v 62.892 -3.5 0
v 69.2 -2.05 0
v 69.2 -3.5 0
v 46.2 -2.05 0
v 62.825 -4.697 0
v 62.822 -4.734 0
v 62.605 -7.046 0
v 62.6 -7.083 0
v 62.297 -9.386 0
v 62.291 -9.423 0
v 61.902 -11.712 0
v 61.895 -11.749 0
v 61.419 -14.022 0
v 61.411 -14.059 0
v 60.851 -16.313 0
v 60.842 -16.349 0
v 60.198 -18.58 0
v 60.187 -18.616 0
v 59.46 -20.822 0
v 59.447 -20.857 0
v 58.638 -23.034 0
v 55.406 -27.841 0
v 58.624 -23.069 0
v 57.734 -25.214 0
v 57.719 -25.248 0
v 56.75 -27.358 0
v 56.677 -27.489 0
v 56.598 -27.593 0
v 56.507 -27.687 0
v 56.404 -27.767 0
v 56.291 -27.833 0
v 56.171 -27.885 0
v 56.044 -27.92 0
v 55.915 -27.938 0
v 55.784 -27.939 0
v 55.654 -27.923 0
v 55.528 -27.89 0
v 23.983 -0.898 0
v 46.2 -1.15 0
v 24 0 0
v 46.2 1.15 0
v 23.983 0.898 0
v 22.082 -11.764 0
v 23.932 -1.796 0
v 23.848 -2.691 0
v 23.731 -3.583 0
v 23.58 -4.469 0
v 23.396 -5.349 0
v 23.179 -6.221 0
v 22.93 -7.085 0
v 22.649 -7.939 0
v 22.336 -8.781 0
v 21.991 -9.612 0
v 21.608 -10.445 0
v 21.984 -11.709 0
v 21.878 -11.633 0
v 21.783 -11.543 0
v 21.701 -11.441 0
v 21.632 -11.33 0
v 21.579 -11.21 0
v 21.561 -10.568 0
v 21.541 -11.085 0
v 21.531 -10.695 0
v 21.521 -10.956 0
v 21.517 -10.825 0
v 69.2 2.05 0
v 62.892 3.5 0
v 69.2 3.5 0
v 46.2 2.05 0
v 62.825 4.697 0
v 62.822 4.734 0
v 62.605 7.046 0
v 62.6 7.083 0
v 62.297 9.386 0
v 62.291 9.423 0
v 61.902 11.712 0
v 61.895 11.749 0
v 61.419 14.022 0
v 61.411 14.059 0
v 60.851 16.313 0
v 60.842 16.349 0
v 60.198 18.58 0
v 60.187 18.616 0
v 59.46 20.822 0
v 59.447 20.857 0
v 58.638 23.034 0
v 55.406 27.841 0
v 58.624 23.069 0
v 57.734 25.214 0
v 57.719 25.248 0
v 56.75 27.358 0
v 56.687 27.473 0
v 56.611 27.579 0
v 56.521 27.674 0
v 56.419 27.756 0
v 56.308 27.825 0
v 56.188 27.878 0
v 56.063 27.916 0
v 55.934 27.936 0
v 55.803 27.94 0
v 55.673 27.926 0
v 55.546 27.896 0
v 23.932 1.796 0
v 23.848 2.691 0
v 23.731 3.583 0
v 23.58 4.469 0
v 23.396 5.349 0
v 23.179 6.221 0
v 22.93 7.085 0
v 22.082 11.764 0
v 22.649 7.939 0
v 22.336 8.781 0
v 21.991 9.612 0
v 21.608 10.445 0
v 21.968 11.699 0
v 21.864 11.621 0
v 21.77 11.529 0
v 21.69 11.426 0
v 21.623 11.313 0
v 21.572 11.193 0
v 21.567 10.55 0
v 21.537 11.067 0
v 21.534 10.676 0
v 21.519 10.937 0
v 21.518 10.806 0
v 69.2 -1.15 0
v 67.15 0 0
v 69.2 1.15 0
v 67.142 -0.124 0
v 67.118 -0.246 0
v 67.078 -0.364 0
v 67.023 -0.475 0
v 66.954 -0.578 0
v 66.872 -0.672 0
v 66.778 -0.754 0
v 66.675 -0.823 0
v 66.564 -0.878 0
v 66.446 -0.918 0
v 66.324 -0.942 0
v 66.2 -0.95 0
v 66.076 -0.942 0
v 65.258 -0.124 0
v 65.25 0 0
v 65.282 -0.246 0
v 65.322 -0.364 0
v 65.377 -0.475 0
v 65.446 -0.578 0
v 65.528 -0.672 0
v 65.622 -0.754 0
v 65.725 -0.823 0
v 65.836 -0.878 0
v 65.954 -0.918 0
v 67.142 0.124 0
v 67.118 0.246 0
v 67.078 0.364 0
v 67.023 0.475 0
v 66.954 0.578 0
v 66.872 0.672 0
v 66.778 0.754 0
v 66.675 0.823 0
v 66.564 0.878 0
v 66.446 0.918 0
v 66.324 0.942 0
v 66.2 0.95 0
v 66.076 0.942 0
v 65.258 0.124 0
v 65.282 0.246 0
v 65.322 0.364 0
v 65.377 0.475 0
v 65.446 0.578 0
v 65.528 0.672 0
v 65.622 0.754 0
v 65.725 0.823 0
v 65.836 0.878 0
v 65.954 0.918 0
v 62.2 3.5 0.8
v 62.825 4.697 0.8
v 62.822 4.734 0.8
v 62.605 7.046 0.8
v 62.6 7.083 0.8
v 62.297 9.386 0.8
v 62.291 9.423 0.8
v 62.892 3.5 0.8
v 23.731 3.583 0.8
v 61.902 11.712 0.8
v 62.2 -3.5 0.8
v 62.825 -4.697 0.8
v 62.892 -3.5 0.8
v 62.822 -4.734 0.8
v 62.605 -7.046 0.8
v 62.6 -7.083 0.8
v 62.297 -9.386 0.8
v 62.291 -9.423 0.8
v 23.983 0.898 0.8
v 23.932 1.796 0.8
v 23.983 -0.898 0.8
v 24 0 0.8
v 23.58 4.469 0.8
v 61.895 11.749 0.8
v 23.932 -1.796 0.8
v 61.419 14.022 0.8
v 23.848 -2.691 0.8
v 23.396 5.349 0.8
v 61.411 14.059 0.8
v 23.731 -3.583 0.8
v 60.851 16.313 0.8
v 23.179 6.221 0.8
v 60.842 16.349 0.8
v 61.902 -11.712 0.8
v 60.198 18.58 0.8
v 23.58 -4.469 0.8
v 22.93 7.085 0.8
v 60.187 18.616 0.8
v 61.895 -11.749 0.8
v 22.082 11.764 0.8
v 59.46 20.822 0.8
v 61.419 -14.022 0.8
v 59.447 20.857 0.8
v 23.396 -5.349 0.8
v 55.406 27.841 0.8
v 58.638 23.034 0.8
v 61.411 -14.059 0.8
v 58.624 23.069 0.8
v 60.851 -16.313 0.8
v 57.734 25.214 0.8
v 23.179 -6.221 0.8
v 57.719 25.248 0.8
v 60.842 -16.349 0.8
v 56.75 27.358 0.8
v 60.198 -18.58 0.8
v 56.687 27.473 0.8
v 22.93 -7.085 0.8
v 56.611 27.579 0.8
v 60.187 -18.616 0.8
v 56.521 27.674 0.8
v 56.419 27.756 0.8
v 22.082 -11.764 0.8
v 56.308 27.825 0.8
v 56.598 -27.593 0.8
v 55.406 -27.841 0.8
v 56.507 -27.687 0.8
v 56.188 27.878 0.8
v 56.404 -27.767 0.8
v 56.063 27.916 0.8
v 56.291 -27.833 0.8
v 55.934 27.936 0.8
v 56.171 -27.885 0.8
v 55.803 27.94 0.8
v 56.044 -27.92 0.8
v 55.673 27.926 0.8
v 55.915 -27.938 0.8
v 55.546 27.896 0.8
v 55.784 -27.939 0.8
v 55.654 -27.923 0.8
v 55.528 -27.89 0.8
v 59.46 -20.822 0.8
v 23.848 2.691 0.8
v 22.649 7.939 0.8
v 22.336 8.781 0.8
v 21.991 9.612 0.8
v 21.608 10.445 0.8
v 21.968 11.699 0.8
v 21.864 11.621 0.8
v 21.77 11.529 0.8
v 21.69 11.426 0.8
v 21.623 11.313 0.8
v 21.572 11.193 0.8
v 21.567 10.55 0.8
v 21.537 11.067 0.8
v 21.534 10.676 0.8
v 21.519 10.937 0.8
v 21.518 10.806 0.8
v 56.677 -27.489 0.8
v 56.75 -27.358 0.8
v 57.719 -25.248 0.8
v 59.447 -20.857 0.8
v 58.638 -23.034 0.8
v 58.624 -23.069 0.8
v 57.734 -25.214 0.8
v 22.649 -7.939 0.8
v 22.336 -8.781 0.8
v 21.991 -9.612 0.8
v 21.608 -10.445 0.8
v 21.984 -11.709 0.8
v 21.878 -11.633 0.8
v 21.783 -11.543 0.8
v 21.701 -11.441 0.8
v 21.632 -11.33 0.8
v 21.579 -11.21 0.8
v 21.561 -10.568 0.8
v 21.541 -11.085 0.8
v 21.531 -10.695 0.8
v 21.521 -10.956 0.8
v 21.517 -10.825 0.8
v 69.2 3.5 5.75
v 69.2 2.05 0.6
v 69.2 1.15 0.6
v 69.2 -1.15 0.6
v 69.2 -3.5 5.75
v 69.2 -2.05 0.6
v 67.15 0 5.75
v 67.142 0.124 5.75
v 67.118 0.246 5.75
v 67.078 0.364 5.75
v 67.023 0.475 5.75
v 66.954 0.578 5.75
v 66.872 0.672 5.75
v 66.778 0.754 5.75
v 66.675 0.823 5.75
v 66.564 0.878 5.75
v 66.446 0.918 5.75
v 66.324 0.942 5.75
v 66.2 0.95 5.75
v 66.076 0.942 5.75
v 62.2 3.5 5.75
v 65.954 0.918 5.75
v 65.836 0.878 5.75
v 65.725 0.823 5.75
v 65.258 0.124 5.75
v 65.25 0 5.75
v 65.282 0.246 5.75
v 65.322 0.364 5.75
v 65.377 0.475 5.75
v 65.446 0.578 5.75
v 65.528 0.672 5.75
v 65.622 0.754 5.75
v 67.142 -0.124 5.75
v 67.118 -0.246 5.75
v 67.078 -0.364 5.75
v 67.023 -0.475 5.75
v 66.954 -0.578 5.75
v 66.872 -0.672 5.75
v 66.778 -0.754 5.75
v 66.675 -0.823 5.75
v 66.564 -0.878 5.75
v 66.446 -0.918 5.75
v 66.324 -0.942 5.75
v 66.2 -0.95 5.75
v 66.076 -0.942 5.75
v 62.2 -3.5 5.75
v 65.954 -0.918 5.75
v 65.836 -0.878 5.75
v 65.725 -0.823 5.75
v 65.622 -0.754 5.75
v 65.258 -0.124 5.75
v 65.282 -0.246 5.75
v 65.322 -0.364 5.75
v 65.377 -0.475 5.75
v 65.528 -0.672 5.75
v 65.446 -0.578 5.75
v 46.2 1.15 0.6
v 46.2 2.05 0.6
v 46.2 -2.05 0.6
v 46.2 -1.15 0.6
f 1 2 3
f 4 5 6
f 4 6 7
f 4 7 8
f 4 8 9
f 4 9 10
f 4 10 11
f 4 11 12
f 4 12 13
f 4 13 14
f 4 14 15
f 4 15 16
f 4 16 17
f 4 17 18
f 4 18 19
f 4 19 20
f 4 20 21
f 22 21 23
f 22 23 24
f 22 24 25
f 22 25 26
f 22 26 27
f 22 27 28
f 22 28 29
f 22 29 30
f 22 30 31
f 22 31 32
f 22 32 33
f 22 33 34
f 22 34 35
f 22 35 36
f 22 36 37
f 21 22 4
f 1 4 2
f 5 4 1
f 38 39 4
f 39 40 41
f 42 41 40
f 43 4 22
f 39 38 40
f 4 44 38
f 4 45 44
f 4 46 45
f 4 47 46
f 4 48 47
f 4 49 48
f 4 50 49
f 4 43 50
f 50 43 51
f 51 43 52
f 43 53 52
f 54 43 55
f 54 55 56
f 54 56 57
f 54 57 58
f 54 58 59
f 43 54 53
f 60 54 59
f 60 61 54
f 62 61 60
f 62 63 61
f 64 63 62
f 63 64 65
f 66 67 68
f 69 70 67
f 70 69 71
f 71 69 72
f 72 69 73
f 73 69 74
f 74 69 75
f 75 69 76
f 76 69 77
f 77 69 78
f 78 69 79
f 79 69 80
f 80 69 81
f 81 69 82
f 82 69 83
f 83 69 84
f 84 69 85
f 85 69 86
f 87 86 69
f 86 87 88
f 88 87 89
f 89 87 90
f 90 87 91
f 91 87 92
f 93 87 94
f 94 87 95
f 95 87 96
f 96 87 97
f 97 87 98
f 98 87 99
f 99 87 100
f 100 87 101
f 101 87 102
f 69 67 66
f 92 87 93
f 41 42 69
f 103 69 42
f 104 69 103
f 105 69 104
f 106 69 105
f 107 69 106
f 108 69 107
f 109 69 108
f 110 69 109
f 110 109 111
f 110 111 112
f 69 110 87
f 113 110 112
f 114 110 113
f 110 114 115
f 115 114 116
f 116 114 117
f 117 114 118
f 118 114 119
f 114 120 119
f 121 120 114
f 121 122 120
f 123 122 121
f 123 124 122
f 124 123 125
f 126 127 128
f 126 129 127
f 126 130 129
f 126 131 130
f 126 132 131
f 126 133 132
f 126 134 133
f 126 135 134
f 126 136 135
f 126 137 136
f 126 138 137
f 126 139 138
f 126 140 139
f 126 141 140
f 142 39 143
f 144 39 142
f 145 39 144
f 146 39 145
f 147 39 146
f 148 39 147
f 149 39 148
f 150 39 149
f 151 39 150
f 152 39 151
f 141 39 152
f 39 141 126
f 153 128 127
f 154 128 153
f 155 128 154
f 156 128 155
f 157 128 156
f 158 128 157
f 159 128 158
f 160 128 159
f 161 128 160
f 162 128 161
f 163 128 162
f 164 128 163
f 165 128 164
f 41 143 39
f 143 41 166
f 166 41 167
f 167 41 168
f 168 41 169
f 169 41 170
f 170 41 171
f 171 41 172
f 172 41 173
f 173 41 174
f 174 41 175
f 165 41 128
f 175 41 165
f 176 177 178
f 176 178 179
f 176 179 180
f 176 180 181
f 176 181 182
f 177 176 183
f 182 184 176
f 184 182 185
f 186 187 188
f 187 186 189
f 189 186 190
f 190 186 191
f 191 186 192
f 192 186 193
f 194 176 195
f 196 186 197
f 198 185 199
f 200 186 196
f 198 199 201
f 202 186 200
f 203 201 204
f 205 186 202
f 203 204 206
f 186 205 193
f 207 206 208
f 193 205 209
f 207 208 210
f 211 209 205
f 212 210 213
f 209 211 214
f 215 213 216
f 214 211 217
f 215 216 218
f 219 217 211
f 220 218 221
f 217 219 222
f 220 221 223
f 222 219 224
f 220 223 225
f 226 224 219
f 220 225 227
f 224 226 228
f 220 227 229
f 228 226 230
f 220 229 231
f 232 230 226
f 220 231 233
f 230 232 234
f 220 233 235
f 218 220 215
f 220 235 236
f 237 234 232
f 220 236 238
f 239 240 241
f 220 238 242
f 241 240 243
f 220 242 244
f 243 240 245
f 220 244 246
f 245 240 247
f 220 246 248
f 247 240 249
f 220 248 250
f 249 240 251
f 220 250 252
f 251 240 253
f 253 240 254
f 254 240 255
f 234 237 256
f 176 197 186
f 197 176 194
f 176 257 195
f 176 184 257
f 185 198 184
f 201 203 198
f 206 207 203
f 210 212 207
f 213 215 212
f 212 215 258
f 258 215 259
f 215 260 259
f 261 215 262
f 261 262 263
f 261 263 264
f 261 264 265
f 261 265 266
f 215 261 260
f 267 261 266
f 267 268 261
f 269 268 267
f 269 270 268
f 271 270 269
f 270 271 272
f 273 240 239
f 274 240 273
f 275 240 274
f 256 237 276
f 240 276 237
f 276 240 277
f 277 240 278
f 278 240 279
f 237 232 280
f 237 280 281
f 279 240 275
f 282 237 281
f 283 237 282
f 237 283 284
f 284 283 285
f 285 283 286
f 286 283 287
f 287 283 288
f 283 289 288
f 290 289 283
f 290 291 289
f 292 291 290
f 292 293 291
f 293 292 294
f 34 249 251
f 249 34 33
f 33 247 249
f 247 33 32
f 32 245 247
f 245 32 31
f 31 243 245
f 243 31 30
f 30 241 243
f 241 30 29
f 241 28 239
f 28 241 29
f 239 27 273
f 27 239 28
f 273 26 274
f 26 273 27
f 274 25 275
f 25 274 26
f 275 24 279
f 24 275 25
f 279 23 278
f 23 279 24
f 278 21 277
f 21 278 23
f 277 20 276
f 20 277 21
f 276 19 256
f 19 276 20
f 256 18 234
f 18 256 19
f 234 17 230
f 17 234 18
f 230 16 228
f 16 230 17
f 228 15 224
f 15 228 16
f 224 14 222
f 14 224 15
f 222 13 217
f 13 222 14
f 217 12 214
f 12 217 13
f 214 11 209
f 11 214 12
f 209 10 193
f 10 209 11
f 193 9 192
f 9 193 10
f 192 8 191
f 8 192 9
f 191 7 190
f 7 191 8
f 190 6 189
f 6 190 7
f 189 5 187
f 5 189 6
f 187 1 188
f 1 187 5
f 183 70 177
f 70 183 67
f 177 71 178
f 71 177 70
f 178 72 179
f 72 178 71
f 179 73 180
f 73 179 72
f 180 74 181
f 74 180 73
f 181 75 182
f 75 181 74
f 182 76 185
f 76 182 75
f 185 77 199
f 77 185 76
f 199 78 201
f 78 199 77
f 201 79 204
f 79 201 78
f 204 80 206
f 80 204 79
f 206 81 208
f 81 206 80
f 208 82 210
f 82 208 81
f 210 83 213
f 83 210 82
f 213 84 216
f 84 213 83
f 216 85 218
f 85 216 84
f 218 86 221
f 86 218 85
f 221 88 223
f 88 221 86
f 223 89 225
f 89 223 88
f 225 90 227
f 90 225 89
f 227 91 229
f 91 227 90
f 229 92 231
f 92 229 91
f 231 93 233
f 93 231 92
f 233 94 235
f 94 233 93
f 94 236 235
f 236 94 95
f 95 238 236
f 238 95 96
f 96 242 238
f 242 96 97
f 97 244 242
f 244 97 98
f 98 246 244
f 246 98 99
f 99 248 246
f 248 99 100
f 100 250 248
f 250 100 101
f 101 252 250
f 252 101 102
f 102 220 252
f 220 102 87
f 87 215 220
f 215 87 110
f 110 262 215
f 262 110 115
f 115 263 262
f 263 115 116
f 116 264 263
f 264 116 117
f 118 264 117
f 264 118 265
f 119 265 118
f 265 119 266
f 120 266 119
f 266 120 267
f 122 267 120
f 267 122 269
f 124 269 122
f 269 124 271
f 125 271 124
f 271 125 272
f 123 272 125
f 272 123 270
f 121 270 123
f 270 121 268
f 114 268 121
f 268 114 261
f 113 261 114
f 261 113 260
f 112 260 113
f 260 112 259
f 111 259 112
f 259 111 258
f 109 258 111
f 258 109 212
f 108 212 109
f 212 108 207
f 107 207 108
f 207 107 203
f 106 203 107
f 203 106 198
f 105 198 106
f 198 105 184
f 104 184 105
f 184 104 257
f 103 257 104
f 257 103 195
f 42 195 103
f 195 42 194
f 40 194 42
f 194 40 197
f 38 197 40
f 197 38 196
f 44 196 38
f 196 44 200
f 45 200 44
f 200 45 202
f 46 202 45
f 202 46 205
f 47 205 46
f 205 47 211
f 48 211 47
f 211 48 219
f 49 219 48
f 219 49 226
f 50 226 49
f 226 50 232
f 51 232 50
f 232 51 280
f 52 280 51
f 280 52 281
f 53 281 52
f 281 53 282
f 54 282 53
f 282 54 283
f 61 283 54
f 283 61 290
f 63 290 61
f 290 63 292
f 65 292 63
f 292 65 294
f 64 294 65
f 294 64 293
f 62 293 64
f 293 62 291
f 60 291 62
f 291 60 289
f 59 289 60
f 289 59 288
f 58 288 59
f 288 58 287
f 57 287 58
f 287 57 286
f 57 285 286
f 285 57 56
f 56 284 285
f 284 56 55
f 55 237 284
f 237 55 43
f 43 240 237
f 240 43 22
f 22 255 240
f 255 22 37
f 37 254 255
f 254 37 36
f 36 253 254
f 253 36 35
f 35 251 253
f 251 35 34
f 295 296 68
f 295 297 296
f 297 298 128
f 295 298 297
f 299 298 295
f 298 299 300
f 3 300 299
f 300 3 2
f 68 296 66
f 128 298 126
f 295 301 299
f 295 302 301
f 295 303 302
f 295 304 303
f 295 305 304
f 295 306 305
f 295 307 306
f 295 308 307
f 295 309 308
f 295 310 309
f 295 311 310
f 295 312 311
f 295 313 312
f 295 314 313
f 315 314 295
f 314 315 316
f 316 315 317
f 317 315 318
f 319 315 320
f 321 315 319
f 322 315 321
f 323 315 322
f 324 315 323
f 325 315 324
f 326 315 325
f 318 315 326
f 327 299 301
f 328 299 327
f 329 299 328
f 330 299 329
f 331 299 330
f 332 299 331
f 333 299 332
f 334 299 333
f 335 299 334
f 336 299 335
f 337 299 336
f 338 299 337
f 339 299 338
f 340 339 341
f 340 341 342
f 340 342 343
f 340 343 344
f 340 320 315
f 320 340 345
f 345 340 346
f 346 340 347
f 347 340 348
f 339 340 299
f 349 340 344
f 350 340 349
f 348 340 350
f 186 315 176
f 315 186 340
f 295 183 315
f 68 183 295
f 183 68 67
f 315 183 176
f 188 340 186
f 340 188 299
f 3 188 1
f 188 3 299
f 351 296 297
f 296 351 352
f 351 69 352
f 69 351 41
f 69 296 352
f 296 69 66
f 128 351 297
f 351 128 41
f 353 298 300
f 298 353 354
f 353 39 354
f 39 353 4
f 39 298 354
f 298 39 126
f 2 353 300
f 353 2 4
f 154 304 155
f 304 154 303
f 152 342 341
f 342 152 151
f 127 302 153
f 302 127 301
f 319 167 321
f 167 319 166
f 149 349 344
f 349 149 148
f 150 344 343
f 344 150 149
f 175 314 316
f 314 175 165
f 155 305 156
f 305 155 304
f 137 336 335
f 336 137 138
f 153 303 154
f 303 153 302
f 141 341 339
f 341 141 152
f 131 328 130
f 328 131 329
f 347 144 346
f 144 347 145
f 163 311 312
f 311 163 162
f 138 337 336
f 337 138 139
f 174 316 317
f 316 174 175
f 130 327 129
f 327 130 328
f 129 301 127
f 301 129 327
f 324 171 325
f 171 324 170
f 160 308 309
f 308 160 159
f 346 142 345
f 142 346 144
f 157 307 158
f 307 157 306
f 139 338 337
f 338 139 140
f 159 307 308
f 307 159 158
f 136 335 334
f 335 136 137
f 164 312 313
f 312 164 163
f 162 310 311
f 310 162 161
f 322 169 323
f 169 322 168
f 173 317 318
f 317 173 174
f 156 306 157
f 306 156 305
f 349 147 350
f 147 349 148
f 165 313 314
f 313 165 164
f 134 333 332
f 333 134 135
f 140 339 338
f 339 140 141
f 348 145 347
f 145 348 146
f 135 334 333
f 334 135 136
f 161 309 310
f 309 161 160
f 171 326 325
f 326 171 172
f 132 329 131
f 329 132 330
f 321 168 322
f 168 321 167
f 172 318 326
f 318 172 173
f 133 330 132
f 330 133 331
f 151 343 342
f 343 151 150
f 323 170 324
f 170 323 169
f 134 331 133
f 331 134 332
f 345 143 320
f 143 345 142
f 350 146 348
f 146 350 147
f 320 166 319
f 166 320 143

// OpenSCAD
// file: parameters.scad
// =============================================================================
// Gen-BF — nightly 2026-10-04 (physics_scorer, honest magpylib watts)
// 8-pole / 6-coil dual rotor with big 51.5 deg sector coils and TALL 9.9 mm copper, magnets seated directly on 3 mm steel back-iron discs (through-pockets) so the field stays high across a wide gap.
// Clocking 0 deg (magnets N facing S) + D-flat keyed bore + index notch + flip-symmetric hole map.
// Windable 2-piece bobbin; turns = physics_scorer turns_fit; copper only between flanges.
// Steel back-iron: two 3.0 mm mild-steel discs (steel_backiron_disc.dxf); magnets sit ON the steel
// (through-pockets) -> score with --back-iron.
// =============================================================================
topology            = "dual_rotor";

// --- Wire / winding (physics_scorer winding-fit) -------------------------------
wire_awg            = 26;
wire_od             = 0.45;     // insulated OD mm (bare 0.405)
fill_realistic      = 0.60;     // insulated-wire area / window, hand-wound layered
turns               = 571;       // = physics_scorer turns_fit (do NOT raise)
coil_former_type    = "bobbin";
coil_core_inset     = 15.30;     // radial copper build: hub = copper boundary inset by this
wind_build_axial    = 0.0;      // nothing proud of the flanges
wind_build_radial   = 0.0;

// --- Bobbin (base + lid) ---------------------------------------------------------
coil_id_r           = 25.00;    // copper boundary sector
coil_od_r           = 62.00;
span_deg            = 51.51;    // = pitch - 2*asin((wall+0.85)/coil_id_r) -> >=1.2 mm stator web
former_web          = 9.90;     // copper height between flanges (TALL copper: steel keeps Bz up)
flange_t            = 0.80;     // >= 0.8 mm FDM wall rule (tall winds push on the flanges)
wall                = 1.00;     // flange lip beyond copper
former_bare_h       = former_web + 2 * flange_t;
coil_envelope_h     = former_bare_h + 2 * wind_build_axial;
tab_w               = 7.0;
tab_len             = 7.0;
tab_h               = former_bare_h / 2;
pin_d               = 1.9;      // 1.75 mm filament locating pin
coil_mount_r        = coil_od_r + 0.2 + 4.0;
lead_y              = 1.6;
lead_slot_w         = 0.9;
lead_groove_d       = 0.6;

// --- Gap -------------------------------------------------------------------------
run_clear           = 0.50;     // rotor face -> flange
gap_spacer_h        = run_clear + wind_build_axial;
m2m                 = coil_envelope_h + 2 * run_clear;   // rotor face to rotor face (= gap_sleeve length)

// --- Stator ----------------------------------------------------------------------
coil_stations       = 6;
bay_clear           = 0.25;
stator_thick        = former_bare_h;                        // bobbins flush both faces
stator_od           = 149.0;
shaft_clear_stator  = 14.0;     // stator is static; gap sleeve OD 12 spins inside

// --- Rotor(s) --------------------------------------------------------------------
magnet_Br           = 1.43;     // N52
magnet_d_large      = 20.0;
magnet_h_large      = 5.0;      // one O20x5 per pocket
magnet_h_small      = 5.0;      // one O5x5 per pocket
halbach_magnetisation = "diametric"; // O5x5 assist magnets MUST be DIAMETRICALLY magnetised (tangential)
rotor_b_same_axis   = true;     // same-index magnets share one axis: N faces S across the gap
large_pocket_d      = 20.3;
small_pocket_d      = 5.3;
pocket_h            = 5.10;     // THROUGH the carrier: magnet back face sits on the steel disc
large_n             = 8;
R_large             = 44.0;
R_small_inner       = 30.0;
R_small_mid         = 44.0;
R_small_outer       = 59.0;
small_r_list        = [R_small_inner, R_small_mid, R_small_outer];   // O5 pockets between poles
carrier_od          = 127.0;
carrier_thick       = pocket_h;
hub_h               = 10.0;
hub_od              = 24.0;     // slim hub so the M4 brace rods fit at R~18 inside the coil ring
hub_insert_d        = 4.0;      // M3 heat-set insert, radial, bears on the D-flat
rotor_b_offset_deg  = 0.0;      // CLOCKING: magnets directly opposite
shaft_key           = "dflat";
dflat_depth         = 0.5;      // 8 mm shaft with 0.5 mm flat (7.5 across flat)
index_notch_d       = 3.0;

// --- Steel back-iron (buyable laser-cut) -------------------------------------------
steel_t             = 3.0;      // mild steel thickness (not modelled by the image method; >=3 avoids saturation)
steel_center_hole   = 26.0;     // slips over the rotor hub (OD 24)

// --- Modular MAX interface ----------------------------------------------------------
shaft_bore          = 8.35;
dflat_x             = 4.0 - dflat_depth + (shaft_bore - 8.0) / 2;
bearing_d           = 21.85;
bearing_h           = 7.2;
m3_clear            = 3.5;
bolt_r_inner        = 27.0;     // M3 steel-disc clamp bolts (inside the magnet ring)
bolt_n_inner        = 4;
bolt_inner_angles   = [0, 90, 180, 270];
bolt_r_outer        = 57.0;     // M3 steel-disc clamp bolts (outside the magnet ring)
bolt_outer_angles   = [0, 90, 180, 270];
flange_bolt_r       = 69.5;     // frame rods: OUTSIDE the rotor OD (rotors spin inside them)
flange_bolt_n       = 6;
flange_bolt_offset  = 30.00;    // between coil stations -> never cuts a lead groove/tab
brace_r             = 18.0;
brace_d             = 4.3;      // temporary M4 jack rods (assembly only)
brace_n             = 4;
brace_angles        = [45, 135, 225, 315];          // flip-symmetric

spacer_pad_od       = 14.0;
spacer_pad_id       = m3_clear;
endbell_od          = 149.0;
endbell_thick       = 8.0;
endbell_shaft_clear = 10.0;
collar_h            = 10.0;
standoff_od         = 9.0;
frame_standoff_h    = run_clear + carrier_thick + hub_h + collar_h + 2.0;
sleeve_od           = 12.0;
plate_max_mm        = 410;

$fn = 64;
// main file
// Gen-BF — bobbin LID (top flange + locating tab). Print x6, flange face DOWN on the bed.
// CA-glue onto the hub top BEFORE winding. Tab = lap joint into the stator tab pocket; 1.75 mm filament
// pin through pin hole + stator ledge, trim flush. Lead slots carry both leads flush.
include <parameters.scad>;
$fn = 48;
module sector_2d(r_in, r_out, ang) {
    polygon([
        for (a = [-ang/2 : ang/24 : ang/2]) [r_in*cos(a), r_in*sin(a)],
        for (a = [ang/2 : -ang/24 : -ang/2]) [r_out*cos(a), r_out*sin(a)]
    ]);
}
module footprint_2d() { offset(r=wall) sector_2d(coil_id_r, coil_od_r, span_deg); }
module hub_2d()       { offset(delta=-coil_core_inset) sector_2d(coil_id_r, coil_od_r, span_deg); }

difference() {
    union() {
        linear_extrude(flange_t) footprint_2d();
        translate([coil_od_r + 0.2, -tab_w/2, 0]) cube([tab_len, tab_w, tab_h]);
    }
    translate([coil_mount_r, 0, -0.1]) cylinder(d=pin_d, h=tab_h + 1);
    for (y = [lead_y, -lead_y])
        translate([coil_od_r - coil_core_inset - 0.5, y - lead_slot_w/2, -0.1])
            cube([coil_core_inset + tab_len + 2, lead_slot_w, lead_groove_d + 0.1]);
}
